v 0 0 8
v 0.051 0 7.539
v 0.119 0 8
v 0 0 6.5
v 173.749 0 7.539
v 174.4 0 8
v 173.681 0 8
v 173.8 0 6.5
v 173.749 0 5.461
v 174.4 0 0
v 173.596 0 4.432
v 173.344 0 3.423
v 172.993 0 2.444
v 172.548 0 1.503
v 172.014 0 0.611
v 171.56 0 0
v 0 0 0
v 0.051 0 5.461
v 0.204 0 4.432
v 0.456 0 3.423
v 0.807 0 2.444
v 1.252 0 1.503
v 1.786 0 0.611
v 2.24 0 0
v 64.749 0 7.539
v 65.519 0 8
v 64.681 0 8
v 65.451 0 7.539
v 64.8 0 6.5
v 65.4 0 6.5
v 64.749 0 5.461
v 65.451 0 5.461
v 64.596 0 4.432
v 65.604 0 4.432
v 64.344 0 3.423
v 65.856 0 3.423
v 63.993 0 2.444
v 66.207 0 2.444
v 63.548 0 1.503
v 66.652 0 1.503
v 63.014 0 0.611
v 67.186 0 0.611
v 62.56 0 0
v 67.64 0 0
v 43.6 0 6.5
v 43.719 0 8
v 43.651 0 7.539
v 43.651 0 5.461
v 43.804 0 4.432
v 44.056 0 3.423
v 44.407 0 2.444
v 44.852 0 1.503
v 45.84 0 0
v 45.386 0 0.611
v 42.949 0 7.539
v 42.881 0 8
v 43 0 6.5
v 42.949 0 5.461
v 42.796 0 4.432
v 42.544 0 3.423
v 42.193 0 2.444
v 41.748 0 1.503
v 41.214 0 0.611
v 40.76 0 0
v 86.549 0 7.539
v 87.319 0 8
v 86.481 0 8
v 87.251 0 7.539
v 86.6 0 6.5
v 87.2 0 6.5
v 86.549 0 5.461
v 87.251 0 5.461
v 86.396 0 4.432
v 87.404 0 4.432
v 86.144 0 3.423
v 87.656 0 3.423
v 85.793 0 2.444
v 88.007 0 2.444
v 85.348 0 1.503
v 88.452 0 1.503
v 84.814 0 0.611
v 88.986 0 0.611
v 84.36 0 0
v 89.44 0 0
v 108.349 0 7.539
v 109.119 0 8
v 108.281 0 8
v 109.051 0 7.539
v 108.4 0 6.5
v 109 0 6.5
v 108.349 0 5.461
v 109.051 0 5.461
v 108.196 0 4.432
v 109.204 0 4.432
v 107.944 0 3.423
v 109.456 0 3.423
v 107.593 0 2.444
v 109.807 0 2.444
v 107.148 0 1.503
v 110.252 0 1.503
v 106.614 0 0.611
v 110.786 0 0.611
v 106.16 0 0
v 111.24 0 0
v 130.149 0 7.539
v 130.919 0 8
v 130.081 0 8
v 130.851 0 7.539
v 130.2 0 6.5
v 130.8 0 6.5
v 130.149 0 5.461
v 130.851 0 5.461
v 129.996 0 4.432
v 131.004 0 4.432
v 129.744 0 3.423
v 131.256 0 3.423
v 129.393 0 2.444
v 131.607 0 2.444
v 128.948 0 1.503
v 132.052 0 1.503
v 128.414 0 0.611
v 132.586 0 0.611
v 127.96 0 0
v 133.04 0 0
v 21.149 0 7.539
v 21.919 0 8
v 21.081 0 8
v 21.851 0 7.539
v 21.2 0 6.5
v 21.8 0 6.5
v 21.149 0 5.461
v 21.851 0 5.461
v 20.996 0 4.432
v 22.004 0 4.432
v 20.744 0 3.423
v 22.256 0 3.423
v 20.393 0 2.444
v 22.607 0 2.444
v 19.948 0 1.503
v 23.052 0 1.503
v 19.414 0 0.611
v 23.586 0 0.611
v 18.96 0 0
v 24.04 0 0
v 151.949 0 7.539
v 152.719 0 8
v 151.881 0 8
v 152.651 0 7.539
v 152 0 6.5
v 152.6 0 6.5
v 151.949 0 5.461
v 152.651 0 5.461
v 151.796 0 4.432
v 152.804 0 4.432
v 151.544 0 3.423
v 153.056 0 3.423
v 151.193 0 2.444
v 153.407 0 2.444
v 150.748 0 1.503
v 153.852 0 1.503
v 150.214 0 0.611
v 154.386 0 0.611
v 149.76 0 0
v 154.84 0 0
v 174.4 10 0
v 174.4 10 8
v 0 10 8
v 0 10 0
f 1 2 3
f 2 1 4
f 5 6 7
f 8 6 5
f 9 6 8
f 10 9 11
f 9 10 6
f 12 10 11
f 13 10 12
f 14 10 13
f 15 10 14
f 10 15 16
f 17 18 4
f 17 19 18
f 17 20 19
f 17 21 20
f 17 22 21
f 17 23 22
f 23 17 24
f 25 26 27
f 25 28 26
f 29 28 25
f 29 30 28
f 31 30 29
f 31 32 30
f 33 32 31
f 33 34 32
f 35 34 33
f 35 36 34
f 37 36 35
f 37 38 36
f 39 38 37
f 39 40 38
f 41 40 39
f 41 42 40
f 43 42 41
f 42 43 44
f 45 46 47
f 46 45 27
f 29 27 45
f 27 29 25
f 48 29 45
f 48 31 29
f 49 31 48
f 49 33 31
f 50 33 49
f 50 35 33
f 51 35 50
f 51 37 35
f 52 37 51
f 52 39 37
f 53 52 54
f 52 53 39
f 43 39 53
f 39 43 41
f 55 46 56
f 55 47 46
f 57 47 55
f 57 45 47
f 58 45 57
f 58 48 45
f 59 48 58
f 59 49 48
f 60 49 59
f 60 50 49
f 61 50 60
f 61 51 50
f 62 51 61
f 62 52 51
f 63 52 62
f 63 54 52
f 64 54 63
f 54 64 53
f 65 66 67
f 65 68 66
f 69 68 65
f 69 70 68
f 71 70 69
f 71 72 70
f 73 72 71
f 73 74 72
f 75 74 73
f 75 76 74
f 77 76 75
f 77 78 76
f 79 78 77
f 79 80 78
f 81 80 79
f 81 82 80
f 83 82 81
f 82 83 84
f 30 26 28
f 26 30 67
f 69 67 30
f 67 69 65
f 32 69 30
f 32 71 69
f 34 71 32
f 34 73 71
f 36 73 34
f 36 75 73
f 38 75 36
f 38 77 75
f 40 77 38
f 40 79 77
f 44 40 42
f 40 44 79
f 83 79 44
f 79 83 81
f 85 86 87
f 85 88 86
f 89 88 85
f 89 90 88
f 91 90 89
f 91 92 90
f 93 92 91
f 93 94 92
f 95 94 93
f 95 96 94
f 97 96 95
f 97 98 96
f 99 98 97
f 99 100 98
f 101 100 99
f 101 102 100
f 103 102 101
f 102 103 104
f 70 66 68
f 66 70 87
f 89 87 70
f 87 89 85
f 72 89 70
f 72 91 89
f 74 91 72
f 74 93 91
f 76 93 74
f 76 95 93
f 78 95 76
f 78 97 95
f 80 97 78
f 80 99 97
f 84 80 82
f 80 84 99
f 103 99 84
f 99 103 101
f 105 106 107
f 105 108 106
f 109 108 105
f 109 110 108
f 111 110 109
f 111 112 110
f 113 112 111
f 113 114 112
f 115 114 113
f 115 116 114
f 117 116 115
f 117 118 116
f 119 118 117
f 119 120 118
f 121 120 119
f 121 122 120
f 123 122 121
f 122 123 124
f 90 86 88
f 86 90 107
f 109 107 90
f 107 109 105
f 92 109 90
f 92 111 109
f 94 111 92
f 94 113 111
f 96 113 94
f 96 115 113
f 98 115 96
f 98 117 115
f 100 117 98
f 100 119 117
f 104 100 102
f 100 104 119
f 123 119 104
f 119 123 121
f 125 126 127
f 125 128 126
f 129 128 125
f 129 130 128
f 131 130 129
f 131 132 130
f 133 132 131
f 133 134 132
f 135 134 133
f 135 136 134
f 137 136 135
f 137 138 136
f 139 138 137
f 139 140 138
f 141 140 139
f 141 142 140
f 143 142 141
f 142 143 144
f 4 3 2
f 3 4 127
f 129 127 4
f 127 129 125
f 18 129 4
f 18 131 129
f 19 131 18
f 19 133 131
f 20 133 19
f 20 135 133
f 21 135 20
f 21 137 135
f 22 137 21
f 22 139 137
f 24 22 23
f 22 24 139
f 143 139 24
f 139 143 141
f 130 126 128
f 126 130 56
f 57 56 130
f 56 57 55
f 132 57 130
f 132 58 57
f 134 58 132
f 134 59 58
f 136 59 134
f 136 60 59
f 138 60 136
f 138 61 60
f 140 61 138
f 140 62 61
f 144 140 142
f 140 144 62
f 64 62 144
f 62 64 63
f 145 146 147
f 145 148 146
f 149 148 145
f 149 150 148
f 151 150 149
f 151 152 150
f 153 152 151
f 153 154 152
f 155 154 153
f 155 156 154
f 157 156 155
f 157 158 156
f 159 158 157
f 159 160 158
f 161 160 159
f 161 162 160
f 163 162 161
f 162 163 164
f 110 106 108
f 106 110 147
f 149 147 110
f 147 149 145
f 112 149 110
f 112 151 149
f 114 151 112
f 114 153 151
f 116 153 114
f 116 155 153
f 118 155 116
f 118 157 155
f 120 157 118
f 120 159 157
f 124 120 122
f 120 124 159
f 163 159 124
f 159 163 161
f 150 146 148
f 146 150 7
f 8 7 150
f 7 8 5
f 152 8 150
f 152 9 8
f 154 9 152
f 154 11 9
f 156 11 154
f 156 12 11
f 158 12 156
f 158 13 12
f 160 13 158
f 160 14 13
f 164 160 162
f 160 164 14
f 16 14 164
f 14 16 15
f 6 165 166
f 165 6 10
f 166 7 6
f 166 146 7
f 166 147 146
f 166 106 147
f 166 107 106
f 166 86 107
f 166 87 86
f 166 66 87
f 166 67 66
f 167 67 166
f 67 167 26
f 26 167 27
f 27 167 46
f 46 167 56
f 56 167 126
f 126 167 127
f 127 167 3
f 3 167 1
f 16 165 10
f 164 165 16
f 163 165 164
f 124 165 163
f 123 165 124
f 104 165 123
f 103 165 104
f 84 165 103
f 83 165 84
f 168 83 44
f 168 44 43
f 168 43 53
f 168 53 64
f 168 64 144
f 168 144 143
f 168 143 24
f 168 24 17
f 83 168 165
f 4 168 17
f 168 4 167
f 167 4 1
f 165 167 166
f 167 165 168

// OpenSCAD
// === Parameters ===
cell_diameter = 21.2;
cell_radius = cell_diameter / 2;
cell_count = 8;                   // Number of cells
gap = 0.6;                        // Gap between slots
slot_depth = 4.5;                 // Depth of the semi-circle scoop
base_thickness = 2;              // Flat base thickness
holder_length = cell_count * (cell_diameter + gap);
holder_width = 10;               // Width in Y direction (adjust for grip)
extra_lip = 1.5;                 // Lip beyond slot depth for retention
mirror_holder = false;           // Set to true to generate the mirrored side

// === Main Holder ===
difference() {
    // Block base
    cube([holder_length, holder_width, base_thickness + slot_depth + extra_lip]);

    // Scalloped cutouts for cells
    for (i = [0 : cell_count - 1]) {
        x = i * (cell_diameter + gap) + cell_radius;
        translate([x, 0, base_thickness + slot_depth])
            rotate([90, 0, 0])
                cylinder(h = holder_width + 1, r = cell_radius, $fn = 64); // scallop cut
    }
}

// === Optional Mirrored Holder for Top Retention ===
if (mirror_holder) {
    translate([0, holder_width + 5, 0])
        mirror([0, 1, 0])
            difference() {
                cube([holder_length, holder_width, base_thickness + slot_depth + extra_lip]);

                for (i = [0 : cell_count - 1]) {
                    x = i * (cell_diameter + gap) + cell_radius;
                    translate([x, 0, base_thickness + slot_depth])
                        rotate([90, 0, 0])
                            cylinder(h = holder_width + 1, r = cell_radius, $fn = 64);
                }
            }
}
